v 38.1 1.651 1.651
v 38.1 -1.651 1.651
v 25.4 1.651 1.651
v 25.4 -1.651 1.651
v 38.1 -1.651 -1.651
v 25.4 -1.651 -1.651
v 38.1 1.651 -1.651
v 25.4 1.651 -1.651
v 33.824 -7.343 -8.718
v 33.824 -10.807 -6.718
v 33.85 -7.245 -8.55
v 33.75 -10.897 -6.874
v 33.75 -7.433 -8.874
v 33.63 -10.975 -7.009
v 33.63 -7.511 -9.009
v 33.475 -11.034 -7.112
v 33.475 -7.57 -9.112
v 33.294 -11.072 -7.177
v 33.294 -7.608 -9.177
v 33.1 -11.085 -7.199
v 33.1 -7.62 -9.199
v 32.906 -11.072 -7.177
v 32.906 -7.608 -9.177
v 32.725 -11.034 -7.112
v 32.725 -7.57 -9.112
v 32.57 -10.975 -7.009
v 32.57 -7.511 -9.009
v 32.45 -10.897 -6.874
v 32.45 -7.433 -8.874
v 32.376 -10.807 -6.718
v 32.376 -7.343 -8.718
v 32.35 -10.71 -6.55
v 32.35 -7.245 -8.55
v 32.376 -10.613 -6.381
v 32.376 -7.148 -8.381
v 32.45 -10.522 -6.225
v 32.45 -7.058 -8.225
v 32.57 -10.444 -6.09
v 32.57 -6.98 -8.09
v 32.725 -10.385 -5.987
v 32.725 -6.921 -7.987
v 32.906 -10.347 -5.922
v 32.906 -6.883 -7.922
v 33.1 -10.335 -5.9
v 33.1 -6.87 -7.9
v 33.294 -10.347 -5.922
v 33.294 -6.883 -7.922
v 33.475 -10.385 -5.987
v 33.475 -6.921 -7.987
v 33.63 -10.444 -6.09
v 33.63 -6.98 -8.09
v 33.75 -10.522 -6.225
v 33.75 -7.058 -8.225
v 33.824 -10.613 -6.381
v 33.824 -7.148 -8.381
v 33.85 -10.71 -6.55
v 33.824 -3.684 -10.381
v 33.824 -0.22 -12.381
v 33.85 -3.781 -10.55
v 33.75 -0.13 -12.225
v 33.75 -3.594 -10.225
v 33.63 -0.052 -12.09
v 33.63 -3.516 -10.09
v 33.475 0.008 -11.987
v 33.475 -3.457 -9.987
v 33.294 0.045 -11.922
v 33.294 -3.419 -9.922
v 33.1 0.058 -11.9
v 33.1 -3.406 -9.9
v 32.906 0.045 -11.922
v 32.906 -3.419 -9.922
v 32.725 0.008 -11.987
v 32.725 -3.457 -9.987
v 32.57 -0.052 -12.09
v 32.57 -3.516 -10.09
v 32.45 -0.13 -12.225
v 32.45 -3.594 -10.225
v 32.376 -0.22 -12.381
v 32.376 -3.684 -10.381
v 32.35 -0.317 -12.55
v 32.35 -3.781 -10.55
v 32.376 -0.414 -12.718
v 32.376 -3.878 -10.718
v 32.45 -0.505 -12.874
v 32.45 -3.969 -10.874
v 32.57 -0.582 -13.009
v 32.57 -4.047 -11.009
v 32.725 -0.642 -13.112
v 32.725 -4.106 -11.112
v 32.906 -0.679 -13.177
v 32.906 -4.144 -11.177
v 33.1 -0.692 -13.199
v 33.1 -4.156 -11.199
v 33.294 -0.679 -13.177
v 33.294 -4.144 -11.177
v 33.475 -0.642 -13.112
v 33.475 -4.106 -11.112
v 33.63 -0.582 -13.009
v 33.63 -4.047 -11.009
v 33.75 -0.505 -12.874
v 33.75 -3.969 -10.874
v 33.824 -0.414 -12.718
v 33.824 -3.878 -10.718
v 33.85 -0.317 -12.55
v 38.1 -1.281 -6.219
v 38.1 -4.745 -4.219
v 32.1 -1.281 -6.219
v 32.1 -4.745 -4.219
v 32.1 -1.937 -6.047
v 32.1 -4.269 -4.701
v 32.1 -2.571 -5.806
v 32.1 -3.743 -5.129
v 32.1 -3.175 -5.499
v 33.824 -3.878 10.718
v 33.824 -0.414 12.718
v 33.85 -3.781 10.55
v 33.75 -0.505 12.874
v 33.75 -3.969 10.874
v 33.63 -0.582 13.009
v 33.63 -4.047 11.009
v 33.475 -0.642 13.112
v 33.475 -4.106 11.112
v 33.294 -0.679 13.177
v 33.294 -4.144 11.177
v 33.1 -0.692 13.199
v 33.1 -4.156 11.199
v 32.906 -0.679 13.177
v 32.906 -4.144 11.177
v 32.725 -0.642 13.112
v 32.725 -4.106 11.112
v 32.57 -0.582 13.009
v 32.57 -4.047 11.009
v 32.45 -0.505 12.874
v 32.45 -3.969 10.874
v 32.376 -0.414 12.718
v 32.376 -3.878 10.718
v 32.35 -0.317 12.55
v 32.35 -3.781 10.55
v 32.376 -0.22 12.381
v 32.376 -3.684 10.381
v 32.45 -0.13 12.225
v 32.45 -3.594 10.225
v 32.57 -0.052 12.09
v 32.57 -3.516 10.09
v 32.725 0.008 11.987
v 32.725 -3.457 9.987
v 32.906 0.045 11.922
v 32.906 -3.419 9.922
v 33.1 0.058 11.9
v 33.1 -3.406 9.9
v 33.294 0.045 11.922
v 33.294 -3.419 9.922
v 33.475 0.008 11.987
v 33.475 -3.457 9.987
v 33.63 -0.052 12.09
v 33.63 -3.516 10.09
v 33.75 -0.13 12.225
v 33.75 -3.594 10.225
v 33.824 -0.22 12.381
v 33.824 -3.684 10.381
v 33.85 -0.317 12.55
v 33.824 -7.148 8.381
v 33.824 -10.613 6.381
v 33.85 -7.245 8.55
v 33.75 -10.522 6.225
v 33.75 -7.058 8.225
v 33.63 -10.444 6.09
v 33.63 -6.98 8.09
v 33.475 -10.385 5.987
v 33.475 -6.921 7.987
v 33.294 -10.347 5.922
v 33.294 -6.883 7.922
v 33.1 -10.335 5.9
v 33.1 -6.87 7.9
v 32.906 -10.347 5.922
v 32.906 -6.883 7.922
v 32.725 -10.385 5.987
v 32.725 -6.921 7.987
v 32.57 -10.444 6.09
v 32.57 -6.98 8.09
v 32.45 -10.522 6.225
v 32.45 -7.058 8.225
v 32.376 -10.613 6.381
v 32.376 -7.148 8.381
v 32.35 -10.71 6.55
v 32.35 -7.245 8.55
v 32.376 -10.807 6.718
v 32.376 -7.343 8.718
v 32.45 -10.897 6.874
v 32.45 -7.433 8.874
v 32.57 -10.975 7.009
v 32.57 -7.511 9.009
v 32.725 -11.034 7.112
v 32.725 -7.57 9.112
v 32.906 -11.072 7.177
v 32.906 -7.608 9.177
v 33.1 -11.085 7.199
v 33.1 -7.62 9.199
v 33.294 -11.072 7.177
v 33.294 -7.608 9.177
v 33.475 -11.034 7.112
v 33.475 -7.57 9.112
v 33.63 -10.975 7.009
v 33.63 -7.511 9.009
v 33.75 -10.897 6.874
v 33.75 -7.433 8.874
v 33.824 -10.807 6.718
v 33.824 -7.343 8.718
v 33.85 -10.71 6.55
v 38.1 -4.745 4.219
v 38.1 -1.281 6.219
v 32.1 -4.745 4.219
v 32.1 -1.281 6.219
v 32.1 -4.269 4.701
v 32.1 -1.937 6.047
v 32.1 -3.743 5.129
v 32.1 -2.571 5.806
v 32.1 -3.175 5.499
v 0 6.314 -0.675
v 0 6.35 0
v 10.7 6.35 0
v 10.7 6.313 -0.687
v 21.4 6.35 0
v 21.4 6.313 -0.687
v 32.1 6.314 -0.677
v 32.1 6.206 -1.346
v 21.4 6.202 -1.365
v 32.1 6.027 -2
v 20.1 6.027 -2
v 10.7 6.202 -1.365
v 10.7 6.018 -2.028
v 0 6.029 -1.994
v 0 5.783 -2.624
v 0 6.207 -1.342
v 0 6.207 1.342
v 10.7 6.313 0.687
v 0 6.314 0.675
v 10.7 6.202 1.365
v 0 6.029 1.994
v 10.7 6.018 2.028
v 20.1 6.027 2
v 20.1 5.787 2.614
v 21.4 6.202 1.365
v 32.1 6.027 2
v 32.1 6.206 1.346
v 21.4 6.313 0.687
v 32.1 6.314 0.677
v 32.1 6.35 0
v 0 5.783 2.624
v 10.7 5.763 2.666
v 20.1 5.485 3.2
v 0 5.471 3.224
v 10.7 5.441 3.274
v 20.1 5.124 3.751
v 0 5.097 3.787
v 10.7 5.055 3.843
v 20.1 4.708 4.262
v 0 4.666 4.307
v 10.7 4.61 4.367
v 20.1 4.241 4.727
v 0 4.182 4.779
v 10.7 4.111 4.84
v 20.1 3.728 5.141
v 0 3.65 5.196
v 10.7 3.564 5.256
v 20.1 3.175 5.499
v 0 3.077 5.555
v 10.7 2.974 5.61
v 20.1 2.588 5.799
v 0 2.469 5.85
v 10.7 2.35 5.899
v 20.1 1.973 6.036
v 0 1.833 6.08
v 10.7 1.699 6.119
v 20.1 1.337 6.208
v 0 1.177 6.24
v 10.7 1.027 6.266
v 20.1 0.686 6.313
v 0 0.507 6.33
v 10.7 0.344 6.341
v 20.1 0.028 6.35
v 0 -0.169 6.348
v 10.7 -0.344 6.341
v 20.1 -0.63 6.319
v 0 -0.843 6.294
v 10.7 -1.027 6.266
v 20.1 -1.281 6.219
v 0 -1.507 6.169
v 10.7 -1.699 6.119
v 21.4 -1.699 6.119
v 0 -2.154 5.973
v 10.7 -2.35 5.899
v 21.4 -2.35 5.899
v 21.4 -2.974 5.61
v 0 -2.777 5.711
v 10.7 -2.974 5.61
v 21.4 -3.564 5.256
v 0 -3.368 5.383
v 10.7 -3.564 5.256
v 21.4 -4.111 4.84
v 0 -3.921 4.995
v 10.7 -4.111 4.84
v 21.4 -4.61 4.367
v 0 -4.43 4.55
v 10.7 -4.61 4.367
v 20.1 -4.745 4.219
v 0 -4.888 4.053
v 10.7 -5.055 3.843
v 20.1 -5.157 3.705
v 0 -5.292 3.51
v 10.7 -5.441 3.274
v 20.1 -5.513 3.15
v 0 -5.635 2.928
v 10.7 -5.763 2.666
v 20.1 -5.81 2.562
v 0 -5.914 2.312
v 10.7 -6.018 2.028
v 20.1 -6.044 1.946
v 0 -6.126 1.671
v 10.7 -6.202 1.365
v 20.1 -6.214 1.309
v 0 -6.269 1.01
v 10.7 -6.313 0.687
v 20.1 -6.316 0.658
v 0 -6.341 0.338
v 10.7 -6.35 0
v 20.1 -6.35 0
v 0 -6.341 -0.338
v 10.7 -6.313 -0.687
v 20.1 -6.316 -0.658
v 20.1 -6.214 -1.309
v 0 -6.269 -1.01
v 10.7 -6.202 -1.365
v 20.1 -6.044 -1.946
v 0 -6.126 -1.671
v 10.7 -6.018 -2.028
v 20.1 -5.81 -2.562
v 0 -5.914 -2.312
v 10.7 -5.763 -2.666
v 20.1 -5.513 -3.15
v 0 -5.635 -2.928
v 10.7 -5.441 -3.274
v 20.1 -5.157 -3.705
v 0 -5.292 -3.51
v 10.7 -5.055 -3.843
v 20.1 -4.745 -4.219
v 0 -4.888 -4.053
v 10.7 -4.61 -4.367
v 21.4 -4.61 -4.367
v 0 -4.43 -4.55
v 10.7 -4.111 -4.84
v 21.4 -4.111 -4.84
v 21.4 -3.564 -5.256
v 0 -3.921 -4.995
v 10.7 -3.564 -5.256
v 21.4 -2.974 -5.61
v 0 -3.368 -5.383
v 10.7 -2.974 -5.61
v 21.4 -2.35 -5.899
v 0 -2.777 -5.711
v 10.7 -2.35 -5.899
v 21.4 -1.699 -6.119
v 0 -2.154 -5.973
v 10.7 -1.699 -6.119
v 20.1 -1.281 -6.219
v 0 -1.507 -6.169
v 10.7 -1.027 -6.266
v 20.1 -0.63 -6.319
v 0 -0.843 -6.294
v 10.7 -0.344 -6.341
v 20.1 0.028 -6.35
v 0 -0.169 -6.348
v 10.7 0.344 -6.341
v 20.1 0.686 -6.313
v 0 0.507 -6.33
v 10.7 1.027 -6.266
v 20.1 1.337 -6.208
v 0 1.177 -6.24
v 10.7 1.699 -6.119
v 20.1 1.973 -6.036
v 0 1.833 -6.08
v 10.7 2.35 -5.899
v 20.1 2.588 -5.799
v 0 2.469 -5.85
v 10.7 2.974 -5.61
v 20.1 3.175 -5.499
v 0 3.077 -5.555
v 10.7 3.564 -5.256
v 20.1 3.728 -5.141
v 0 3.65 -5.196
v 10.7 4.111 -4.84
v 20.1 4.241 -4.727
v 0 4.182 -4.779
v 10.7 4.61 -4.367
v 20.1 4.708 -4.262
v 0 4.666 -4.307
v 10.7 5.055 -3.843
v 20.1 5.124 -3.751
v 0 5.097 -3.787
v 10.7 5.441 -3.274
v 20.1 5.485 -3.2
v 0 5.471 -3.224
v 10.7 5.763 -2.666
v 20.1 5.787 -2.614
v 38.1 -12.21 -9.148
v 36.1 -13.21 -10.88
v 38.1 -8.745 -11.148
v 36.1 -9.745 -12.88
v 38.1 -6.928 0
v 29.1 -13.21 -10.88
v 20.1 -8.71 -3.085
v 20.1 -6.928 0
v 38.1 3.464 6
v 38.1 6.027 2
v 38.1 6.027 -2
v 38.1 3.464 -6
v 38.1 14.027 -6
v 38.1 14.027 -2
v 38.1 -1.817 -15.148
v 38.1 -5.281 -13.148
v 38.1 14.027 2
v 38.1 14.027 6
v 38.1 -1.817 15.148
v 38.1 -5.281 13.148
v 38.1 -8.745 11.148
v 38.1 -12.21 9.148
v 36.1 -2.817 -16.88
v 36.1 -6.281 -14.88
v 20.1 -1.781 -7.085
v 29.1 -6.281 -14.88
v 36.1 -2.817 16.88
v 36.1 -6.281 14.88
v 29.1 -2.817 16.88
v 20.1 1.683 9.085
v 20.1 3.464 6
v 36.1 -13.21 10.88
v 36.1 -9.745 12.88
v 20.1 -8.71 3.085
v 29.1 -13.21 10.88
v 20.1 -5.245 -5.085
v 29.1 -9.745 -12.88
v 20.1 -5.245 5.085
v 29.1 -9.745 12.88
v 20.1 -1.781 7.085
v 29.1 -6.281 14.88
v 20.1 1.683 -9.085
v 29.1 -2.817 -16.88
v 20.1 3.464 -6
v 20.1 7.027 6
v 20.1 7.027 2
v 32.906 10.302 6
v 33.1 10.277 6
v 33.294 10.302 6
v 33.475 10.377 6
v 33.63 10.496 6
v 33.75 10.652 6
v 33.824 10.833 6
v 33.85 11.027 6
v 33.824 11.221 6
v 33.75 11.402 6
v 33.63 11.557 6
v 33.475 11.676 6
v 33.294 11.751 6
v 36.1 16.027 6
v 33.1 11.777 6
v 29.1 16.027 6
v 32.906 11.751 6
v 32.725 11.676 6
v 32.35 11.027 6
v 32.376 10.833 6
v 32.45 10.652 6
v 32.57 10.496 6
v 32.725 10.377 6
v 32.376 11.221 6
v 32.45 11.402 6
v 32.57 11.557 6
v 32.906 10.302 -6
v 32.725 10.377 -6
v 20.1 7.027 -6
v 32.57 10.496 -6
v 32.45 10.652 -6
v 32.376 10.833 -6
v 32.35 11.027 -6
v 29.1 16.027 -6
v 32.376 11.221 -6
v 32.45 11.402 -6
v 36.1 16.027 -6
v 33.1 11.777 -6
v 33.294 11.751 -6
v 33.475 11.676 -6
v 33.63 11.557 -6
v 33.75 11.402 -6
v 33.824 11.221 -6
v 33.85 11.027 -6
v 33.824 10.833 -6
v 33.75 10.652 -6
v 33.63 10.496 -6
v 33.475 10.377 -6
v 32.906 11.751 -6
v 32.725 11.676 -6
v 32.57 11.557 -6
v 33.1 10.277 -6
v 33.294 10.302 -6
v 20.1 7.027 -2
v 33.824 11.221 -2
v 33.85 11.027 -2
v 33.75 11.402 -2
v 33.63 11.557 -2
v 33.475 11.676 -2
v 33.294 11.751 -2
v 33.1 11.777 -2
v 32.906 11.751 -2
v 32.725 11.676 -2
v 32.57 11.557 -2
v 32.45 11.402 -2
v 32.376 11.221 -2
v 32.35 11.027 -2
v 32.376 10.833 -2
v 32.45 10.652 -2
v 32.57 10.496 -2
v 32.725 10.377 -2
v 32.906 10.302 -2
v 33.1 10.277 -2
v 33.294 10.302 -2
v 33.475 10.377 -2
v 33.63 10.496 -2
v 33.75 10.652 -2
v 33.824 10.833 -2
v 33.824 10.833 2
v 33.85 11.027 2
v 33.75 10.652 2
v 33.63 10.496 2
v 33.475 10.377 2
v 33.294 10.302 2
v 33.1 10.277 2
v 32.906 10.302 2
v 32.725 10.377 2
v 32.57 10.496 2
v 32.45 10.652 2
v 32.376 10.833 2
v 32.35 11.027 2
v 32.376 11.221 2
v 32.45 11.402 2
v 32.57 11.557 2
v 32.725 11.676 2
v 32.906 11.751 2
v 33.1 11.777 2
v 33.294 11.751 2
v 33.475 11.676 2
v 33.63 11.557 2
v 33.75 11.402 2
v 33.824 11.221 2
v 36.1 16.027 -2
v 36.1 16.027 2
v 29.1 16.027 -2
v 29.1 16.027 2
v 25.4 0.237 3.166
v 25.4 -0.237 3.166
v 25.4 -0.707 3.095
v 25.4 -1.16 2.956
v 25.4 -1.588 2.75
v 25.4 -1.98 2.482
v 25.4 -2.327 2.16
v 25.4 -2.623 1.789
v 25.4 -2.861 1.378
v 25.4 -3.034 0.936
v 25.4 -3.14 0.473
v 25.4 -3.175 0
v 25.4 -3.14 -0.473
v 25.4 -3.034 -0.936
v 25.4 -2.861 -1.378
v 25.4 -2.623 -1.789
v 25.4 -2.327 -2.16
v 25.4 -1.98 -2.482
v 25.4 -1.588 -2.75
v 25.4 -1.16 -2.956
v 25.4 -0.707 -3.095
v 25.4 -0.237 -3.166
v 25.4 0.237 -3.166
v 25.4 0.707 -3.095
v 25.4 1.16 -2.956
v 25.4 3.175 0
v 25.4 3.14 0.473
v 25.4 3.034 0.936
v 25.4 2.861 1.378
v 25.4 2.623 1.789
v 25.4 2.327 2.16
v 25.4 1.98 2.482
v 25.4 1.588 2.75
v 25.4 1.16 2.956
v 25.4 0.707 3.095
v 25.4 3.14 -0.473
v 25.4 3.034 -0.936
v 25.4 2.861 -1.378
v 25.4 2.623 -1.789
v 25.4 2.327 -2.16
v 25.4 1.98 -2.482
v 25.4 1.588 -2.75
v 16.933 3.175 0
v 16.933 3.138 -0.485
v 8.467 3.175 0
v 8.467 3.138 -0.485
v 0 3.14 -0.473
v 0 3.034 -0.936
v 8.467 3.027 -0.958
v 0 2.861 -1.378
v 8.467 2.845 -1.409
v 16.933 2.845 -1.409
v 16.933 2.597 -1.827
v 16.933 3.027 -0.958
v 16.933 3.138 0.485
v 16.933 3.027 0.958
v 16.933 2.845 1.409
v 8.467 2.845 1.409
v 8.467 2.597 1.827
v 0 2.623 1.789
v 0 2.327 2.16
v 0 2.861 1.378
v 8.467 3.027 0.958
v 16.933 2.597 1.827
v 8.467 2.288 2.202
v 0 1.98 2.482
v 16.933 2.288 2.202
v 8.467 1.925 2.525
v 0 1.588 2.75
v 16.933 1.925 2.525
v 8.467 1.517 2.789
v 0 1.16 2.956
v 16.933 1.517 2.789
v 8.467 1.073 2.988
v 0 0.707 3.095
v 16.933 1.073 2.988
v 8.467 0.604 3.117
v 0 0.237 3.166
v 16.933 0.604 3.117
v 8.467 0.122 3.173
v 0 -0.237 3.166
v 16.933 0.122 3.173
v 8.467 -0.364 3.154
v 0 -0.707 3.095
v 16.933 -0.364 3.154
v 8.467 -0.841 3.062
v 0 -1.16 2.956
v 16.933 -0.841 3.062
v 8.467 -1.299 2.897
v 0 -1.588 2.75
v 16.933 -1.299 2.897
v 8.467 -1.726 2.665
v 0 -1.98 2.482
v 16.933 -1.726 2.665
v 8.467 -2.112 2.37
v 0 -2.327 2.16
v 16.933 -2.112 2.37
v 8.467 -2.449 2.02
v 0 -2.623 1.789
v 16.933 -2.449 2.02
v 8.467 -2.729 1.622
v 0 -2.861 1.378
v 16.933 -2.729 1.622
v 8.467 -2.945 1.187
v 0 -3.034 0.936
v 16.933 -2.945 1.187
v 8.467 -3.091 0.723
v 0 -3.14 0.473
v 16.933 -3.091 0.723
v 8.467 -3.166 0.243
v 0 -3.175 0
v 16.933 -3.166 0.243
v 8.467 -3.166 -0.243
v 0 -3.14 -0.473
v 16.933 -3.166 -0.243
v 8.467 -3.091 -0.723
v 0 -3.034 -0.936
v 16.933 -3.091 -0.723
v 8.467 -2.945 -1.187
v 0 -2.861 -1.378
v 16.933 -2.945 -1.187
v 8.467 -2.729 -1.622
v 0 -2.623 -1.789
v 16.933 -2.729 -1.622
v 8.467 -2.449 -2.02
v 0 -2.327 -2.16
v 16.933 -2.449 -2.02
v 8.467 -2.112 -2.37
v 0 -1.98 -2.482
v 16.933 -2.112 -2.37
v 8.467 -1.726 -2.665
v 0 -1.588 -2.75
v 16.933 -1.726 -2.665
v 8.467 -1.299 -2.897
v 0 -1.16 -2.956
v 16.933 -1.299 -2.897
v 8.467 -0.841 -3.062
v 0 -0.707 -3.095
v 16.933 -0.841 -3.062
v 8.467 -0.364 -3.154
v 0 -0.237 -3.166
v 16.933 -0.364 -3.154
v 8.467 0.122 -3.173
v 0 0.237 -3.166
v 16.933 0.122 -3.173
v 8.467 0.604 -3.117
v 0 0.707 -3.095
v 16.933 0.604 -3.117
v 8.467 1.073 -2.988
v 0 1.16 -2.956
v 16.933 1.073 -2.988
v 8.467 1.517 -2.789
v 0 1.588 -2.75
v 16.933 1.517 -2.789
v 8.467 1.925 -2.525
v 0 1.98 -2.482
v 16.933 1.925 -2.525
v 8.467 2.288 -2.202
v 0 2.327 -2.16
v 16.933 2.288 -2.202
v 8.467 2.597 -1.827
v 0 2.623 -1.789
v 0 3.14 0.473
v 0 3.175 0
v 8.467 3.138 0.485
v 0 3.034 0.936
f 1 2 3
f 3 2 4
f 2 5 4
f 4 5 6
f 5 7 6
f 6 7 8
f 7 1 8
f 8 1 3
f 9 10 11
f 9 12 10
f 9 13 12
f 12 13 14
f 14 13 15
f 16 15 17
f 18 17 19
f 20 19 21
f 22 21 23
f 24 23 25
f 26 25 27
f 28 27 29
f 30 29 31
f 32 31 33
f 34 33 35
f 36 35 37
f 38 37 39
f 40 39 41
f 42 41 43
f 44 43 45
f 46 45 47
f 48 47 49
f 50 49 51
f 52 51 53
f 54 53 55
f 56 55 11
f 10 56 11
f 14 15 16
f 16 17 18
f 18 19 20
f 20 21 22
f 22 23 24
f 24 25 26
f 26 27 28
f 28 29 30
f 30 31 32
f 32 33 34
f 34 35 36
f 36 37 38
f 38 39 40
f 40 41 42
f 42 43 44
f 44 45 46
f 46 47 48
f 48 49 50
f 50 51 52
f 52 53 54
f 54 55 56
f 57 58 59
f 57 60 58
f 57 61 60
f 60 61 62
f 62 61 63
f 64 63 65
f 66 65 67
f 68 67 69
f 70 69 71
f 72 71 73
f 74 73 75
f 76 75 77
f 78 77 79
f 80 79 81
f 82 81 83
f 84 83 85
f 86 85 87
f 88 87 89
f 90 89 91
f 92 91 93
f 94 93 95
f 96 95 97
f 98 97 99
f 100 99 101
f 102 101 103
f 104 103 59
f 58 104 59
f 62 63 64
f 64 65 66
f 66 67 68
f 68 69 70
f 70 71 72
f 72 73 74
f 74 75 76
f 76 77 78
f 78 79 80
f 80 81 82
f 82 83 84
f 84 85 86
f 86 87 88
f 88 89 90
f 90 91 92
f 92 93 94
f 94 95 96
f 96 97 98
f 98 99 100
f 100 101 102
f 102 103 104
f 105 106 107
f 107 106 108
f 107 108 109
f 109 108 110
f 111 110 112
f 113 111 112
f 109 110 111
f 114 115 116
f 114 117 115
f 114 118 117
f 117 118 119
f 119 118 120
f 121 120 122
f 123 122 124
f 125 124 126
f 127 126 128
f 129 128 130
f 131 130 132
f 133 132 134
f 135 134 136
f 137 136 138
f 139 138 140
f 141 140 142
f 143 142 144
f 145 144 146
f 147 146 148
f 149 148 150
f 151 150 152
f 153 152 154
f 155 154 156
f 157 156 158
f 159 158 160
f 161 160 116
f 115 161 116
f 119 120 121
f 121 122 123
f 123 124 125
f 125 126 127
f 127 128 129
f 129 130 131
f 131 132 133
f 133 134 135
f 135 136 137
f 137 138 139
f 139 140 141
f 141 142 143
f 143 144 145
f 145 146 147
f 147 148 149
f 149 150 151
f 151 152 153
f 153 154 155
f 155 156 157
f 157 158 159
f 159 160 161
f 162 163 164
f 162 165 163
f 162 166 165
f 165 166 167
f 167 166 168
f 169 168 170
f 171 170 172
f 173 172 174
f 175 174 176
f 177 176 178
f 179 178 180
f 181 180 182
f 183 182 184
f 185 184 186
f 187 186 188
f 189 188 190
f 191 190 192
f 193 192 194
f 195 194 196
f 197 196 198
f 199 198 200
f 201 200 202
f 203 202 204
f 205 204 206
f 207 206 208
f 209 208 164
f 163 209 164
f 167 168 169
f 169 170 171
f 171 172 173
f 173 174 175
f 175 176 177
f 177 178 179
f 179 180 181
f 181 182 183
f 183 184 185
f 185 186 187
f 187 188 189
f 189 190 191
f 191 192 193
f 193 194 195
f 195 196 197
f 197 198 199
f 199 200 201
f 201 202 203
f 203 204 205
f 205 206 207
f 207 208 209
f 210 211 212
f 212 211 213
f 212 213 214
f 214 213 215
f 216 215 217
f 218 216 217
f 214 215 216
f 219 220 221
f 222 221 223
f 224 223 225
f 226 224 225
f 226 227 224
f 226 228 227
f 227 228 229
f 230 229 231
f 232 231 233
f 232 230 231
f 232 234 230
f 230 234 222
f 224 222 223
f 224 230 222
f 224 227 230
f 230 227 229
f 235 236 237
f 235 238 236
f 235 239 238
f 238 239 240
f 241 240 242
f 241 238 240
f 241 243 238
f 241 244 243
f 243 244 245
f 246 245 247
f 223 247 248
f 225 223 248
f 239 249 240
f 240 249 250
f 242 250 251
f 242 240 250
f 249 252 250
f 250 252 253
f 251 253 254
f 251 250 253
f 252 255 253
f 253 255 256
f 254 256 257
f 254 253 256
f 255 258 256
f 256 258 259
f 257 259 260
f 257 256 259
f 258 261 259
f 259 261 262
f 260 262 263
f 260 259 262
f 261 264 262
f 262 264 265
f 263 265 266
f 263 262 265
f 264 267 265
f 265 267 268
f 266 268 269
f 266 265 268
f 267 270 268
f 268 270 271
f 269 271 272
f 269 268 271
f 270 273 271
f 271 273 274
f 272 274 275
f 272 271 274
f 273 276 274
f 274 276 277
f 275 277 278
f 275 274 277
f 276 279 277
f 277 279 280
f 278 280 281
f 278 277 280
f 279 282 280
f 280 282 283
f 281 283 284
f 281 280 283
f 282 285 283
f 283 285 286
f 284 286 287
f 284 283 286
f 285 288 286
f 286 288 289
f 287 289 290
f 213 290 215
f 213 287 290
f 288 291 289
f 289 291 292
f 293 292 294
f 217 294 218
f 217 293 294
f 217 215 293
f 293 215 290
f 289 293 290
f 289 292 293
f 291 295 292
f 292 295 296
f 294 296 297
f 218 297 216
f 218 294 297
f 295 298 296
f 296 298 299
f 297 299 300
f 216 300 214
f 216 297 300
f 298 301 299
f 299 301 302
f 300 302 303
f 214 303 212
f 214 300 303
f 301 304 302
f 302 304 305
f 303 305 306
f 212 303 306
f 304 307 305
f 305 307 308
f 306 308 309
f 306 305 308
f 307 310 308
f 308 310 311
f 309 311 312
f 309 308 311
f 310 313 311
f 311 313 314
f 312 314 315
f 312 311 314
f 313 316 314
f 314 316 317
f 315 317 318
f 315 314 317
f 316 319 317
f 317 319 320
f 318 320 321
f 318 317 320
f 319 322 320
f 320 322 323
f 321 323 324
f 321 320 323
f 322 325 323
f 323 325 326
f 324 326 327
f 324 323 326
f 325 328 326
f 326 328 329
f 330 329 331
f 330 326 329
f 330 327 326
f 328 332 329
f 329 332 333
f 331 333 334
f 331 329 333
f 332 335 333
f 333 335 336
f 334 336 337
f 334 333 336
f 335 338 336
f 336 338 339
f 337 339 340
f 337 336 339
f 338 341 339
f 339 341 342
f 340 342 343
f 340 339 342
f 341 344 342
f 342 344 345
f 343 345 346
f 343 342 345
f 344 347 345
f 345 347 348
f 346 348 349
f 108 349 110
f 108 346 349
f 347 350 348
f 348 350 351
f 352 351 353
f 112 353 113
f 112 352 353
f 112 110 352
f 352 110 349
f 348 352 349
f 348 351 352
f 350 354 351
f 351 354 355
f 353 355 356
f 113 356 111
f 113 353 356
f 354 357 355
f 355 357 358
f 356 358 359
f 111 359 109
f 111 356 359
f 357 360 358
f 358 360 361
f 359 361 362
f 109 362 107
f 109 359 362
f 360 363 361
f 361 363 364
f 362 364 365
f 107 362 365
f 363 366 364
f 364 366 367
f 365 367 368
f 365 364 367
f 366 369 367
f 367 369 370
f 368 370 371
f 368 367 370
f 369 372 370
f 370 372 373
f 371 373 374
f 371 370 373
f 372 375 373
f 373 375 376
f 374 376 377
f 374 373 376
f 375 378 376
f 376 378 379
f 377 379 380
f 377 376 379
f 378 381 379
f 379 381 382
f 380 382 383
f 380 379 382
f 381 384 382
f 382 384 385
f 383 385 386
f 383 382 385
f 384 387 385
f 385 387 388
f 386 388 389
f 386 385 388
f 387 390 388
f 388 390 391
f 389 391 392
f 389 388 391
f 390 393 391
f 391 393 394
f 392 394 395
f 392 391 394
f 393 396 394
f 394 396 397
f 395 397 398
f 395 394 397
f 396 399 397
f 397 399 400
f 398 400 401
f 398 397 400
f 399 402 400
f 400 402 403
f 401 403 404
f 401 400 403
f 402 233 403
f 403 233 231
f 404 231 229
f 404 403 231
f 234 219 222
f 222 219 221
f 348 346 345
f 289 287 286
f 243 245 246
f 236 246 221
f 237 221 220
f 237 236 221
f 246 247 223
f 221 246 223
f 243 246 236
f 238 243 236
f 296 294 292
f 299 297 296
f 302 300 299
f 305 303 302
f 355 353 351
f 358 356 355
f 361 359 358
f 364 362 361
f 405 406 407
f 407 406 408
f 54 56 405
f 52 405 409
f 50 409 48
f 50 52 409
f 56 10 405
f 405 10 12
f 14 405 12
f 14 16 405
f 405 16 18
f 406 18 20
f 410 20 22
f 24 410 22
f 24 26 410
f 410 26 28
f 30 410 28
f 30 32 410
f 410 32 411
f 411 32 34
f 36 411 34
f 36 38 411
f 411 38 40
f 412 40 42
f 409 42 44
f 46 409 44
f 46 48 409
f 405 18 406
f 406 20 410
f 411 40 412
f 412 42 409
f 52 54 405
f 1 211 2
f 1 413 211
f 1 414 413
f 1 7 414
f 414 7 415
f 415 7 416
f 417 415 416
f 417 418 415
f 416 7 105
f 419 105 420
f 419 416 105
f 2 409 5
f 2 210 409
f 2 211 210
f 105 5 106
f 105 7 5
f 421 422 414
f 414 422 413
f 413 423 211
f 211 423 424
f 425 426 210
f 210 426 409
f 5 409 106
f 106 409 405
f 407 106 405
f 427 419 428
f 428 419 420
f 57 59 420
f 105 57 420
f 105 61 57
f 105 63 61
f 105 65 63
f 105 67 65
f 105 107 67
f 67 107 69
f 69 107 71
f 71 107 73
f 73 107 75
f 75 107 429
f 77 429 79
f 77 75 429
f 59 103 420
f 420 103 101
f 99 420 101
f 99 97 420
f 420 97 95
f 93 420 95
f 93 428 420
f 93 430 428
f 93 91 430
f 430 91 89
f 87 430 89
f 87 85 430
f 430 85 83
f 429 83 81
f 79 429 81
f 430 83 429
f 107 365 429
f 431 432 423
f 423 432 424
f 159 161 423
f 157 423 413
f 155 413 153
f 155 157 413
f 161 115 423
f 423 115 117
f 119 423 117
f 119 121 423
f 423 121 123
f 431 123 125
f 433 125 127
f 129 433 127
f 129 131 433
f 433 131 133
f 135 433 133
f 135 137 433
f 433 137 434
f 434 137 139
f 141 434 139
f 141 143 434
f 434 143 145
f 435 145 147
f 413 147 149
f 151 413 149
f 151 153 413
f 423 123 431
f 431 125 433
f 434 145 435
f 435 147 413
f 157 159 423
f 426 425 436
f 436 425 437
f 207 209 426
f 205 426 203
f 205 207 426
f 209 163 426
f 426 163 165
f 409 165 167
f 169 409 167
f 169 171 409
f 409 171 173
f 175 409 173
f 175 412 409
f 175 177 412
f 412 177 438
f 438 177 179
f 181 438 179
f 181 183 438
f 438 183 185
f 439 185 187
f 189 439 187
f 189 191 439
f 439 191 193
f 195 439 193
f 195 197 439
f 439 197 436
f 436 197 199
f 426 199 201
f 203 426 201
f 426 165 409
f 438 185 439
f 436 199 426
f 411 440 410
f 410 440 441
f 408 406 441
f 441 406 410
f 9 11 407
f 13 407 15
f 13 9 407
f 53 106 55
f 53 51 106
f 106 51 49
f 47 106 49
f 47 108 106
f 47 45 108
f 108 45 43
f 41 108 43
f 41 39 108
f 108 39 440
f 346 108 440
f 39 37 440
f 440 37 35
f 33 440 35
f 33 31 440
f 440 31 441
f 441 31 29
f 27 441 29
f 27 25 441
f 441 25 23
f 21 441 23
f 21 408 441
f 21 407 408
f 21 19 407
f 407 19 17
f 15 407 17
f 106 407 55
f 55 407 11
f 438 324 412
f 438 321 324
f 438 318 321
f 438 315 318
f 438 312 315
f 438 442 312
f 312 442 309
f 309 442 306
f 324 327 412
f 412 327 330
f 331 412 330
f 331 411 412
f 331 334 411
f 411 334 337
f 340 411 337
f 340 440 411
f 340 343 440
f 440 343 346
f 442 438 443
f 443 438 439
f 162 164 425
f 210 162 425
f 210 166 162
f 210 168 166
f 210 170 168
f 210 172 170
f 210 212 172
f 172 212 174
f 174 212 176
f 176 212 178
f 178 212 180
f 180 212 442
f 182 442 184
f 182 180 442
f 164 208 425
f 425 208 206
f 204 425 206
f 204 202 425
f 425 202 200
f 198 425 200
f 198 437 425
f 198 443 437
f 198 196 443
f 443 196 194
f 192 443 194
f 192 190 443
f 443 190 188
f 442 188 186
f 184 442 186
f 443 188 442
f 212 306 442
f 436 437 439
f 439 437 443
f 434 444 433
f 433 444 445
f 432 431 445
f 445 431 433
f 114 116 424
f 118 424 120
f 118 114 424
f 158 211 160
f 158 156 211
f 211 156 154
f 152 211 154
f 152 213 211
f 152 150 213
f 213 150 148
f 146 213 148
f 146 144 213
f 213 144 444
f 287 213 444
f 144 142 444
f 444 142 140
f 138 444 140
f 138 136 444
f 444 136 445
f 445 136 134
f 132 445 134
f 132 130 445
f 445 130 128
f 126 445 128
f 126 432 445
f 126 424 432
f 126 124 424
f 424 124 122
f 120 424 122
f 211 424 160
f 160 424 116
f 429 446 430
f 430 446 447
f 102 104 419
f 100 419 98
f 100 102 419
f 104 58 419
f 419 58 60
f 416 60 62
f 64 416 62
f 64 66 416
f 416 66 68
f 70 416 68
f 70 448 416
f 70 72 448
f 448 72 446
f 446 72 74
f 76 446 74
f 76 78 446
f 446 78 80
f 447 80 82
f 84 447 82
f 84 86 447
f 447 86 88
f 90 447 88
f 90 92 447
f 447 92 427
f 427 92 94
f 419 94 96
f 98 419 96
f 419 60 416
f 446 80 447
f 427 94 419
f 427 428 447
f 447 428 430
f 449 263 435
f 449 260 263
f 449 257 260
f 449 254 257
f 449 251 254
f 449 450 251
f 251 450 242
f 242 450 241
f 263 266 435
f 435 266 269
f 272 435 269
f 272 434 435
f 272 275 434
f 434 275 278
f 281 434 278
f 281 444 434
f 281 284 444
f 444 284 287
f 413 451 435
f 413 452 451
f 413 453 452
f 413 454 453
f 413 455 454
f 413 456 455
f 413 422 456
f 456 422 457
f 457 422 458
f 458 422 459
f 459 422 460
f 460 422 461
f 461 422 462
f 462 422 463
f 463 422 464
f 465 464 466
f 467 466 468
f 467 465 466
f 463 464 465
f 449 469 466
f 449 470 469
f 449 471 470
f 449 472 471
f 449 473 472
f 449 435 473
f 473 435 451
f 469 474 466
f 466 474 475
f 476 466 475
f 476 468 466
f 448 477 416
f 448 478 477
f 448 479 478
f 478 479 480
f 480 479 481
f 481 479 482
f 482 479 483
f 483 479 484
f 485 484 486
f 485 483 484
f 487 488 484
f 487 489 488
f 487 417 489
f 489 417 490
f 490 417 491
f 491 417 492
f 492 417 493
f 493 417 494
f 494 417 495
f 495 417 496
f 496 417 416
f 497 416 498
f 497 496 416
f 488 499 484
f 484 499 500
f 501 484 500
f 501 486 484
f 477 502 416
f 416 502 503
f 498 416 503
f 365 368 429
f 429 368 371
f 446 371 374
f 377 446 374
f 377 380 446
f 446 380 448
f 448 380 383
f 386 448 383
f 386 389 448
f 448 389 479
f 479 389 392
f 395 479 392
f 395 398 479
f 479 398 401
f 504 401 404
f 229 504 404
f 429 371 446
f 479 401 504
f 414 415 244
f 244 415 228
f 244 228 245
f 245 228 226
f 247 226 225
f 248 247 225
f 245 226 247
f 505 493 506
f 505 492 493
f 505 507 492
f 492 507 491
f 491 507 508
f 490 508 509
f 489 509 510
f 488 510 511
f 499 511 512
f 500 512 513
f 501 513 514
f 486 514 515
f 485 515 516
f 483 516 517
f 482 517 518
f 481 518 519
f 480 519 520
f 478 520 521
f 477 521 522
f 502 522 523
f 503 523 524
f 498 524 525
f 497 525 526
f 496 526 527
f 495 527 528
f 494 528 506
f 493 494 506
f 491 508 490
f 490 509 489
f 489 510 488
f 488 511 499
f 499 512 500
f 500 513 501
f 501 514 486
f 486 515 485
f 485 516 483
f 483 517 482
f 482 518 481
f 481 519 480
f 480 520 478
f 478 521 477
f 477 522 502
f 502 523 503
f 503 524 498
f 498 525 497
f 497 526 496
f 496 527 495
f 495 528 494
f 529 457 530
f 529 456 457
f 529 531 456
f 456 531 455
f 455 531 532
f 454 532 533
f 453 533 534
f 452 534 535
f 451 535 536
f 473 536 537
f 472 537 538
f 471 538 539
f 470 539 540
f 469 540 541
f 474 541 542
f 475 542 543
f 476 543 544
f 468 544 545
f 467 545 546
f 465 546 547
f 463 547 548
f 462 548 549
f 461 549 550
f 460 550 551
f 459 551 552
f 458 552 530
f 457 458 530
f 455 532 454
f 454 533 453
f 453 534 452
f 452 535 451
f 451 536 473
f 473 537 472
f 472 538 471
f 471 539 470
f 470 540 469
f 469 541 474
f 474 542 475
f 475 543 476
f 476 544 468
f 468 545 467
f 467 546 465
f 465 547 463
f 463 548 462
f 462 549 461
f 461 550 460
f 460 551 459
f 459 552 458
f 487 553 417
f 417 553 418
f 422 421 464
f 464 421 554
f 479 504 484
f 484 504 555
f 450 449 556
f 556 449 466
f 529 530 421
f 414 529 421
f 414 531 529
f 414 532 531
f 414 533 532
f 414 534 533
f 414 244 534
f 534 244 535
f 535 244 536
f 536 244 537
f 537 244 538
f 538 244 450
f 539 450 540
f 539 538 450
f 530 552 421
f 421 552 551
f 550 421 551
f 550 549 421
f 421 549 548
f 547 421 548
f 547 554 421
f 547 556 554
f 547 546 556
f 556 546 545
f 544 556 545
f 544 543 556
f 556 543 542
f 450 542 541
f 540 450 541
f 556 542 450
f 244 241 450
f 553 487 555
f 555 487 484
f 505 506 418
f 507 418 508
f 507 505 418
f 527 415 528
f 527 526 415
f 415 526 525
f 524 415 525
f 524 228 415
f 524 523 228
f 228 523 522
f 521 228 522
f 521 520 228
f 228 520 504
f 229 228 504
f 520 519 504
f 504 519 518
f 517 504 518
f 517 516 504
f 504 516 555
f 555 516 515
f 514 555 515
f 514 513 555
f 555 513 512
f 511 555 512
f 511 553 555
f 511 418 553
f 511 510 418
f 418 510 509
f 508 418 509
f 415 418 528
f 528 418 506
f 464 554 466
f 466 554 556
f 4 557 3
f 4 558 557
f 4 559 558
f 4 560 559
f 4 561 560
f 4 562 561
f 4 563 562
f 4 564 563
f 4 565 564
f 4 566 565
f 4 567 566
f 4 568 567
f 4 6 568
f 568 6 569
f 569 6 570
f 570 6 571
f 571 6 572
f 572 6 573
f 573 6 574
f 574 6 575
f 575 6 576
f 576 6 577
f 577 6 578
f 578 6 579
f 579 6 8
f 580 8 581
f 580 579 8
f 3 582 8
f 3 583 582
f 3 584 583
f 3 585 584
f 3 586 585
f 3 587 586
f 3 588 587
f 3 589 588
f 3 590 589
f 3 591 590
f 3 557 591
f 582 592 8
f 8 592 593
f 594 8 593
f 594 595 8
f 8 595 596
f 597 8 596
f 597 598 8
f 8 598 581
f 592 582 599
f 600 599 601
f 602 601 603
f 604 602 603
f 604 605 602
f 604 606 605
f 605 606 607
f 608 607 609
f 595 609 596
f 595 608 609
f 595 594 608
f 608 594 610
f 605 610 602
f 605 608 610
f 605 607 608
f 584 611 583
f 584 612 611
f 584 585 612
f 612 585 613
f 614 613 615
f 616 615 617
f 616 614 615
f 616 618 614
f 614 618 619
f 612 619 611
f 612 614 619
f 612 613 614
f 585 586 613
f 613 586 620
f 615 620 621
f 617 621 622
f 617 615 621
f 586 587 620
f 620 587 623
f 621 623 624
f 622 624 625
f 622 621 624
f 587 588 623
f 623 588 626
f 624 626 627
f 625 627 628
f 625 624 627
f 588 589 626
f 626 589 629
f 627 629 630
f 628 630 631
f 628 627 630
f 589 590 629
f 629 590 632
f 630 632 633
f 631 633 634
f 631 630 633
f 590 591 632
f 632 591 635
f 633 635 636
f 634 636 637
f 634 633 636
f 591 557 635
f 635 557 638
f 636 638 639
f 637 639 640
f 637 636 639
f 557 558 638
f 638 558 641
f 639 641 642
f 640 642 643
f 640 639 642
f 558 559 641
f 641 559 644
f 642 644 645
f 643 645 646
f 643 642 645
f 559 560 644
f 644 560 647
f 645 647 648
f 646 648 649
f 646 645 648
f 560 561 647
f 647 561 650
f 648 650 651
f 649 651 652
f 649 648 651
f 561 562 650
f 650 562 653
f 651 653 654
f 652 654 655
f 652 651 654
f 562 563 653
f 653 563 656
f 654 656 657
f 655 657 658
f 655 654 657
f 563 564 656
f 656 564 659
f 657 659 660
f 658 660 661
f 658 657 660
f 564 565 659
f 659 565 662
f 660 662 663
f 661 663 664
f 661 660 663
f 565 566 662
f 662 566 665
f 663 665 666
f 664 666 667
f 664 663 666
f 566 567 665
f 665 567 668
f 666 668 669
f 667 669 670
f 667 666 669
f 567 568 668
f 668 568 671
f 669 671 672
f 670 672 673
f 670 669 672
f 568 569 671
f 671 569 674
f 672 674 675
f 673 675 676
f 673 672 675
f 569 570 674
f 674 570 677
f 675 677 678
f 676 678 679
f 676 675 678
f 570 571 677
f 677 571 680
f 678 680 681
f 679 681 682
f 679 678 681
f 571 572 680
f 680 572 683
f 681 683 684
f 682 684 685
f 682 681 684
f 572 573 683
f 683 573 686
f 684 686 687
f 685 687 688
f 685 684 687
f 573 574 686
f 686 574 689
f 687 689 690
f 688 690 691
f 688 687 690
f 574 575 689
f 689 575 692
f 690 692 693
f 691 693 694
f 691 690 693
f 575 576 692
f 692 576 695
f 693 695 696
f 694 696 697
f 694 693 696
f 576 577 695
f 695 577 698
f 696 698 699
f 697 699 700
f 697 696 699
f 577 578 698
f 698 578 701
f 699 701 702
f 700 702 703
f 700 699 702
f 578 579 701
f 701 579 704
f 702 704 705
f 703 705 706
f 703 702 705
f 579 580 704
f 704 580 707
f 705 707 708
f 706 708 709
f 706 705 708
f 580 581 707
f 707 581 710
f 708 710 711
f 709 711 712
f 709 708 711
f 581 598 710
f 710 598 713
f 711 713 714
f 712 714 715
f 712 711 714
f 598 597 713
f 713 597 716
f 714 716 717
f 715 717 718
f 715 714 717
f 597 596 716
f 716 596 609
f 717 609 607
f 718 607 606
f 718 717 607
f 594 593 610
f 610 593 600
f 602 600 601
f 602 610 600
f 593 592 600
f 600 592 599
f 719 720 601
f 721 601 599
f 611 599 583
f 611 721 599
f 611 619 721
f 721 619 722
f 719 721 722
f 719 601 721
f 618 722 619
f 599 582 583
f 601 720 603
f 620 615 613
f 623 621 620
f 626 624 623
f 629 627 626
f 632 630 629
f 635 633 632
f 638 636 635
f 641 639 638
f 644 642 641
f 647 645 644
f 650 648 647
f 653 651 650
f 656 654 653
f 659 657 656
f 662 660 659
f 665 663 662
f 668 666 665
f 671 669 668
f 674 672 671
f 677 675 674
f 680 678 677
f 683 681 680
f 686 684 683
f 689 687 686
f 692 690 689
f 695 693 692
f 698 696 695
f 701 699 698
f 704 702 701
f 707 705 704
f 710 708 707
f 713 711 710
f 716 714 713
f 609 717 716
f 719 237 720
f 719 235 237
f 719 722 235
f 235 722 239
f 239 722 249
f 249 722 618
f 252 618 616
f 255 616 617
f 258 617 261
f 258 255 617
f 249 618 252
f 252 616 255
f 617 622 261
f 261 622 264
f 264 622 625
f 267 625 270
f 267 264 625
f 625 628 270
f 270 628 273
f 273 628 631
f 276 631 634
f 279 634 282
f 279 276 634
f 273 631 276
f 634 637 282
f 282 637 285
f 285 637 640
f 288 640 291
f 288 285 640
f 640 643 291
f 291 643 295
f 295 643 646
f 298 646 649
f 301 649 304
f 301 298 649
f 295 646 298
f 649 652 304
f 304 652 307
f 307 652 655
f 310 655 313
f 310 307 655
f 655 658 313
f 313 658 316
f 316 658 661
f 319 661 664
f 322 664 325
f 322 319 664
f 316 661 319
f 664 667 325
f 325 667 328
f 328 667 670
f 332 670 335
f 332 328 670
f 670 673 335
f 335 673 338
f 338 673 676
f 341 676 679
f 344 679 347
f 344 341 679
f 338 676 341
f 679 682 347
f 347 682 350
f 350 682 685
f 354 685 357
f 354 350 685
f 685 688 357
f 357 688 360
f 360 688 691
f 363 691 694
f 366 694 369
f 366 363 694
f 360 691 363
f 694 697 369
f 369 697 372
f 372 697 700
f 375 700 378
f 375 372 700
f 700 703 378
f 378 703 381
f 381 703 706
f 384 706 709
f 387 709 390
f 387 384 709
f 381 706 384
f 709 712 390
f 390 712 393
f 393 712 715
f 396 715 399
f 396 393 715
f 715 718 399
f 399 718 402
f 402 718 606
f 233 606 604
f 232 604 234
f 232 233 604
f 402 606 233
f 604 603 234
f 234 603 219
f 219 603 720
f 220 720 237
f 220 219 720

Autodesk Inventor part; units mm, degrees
ref_plane "YZ Plane" through (0, 0, 0) normal (1, 0, 0) x (0, 1, 0)
ref_plane "XZ Plane" through (0, 0, 0) normal (0, 1, 0) x (-1, 0, 0)
ref_plane "XY Plane" through (0, 0, 0) normal (0, 0, 1) x (1, 0, 0)
sketch "Sketch1" plane through (0, 0, 0) normal (1, 0, 0) x (0, 1, 0)
  circle A0 centre (0, 0) radius 3.175
  circle A1 centre (0, 0) radius 6.35
  dimension "d0" = 6.35
  dimension "d1" = 12.7
extrude "Extrusion1" add sketch "Sketch1" along normal blind 25.4
sketch "Sketch2" plane through (25.4, 0, 0) normal (1, 0, 0) x (0, 0, -1)
  circle A0 centre (0, 0) radius 6.35 projected
  circle A1 centre (0, 0) radius 1.5875
  circle A2 centre (0, 0) radius 6.35
  dimension "d4" = 3.175
extrude "Extrusion2" add sketch "Sketch2" along normal blind 12.7
sketch "Sketch3" plane through (38.1, 0, 0) normal (1, 0, 0) x (0, 0, -1)
  circle A0 centre (0, 0) radius 6.35 projected
  line L0 (2, 16.0268) -> (2, 6.0268)
  line L1 (2, 16.0268) -> (6, 16.0268)
  line L2 (6, 16.0268) -> (6, 2.0791)
  line L3 (-2, 16.0268) -> (-2, 6.0268)
  line L4 (-2, 16.0268) -> (-6, 16.0268)
  line L5 (-6, 16.0268) -> (-6, 2.0791)
  dimension "d11" = 4
  dimension "d12" = 10
  dimension "d13" = 10
extrude "Extrusion3" add sketch "Sketch3" against normal blind 18 contours A0 L0 L1 L2 | L5 L4 L3 A0
chamfer "Chamfer1" distance 9 angle 45 2 edges at (20.1, 16.0268, 4) (20.1, 16.0268, -4)
chamfer "Chamfer2" distance 2 angle 45 2 edges at (38.1, 16.0268, 4) (38.1, 16.0268, -4)
sketch "Sketch5" plane through (20.1, 2.0791, 6) normal (0, 0, 1) x (1, 0, 0)
  line L0 (16, 13.9478) -> (9, 13.9478) projected
  line L1 (18, 11.9478) -> (18, 0) projected
  circle A0 centre (13, 8.9478) radius 0.75
  point P0 (-20.1, -2.0791)
  dimension "d30" = 1.5
  dimension "d31" = 5
  dimension "d32" = 5
extrude "Extrusion5" cut sketch "Sketch5" against normal blind 15
sketch "Sketch6" plane through (38.1, 0, 0) normal (1, 0, 0) x (0, 0, -1)
  arc A0 (2, 6.0268) -> (-2, 6.0268) centre (0, 0) ccw projected
  line L0 (-6, 14.0268) -> (-6, 2.0791) projected
  line L1 (2, 6.0268) -> (-2, 6.0268)
  point P0 (-6, 3.4641)
extrude "Extrusion6" cut sketch "Sketch6" against normal blind 6
pattern_circular "Circular Pattern3" count 3 over 360 about axis through (0, 0, 0) along (1, 0, 0) of "Extrusion3", "Chamfer2", "Extrusion5", "Extrusion6", "Chamfer1"
sketch "Sketch7" plane through (38.1, 0, 0) normal (1, 0, 0) x (0, 0, -1)
  circle A0 centre (0, 0) radius 1.5875 projected
  circle A1 centre (0, 0) radius 1.524
  line L0 (-1.524, 1.524) -> (1.524, 1.524)
  line L1 (1.524, 1.524) -> (1.524, -1.524)
  line L2 (1.524, -1.524) -> (-1.524, -1.524)
  line L3 (-1.524, -1.524) -> (-1.524, 1.524)
  circle A2 centre (0, 0) radius 1.5875
  dimension "d43" = 3.048
extrude "Extrusion7" add sketch "Sketch7" against normal blind 3.175 contours A0 L1 | L1 A1 L0 A0 | A0 L2 A1 L1 | L0 A0 | A1 | A0 L2 | L0 A1 L3 A0 | L2 A0 L3 A1 | L3 A0
sketch "Sketch8" plane through (38.1, 0, 0) normal (1, 0, 0) x (0, 0, -1)
  line L0 (-1.651, 1.651) -> (1.651, 1.651)
  line L1 (1.651, 1.651) -> (1.651, -1.651)
  line L2 (1.651, -1.651) -> (-1.651, -1.651)
  line L3 (-1.651, -1.651) -> (-1.651, 1.651)
  point P0 (0, 0)
  dimension "d46" = 1.651
  dimension "d48" = 1.651
  dimension "d49" = 3.302
  dimension "d50" = 3.302
extrude "Extrusion8" cut sketch "Sketch8" against normal blind 12.7
properties part number "Coupler"
